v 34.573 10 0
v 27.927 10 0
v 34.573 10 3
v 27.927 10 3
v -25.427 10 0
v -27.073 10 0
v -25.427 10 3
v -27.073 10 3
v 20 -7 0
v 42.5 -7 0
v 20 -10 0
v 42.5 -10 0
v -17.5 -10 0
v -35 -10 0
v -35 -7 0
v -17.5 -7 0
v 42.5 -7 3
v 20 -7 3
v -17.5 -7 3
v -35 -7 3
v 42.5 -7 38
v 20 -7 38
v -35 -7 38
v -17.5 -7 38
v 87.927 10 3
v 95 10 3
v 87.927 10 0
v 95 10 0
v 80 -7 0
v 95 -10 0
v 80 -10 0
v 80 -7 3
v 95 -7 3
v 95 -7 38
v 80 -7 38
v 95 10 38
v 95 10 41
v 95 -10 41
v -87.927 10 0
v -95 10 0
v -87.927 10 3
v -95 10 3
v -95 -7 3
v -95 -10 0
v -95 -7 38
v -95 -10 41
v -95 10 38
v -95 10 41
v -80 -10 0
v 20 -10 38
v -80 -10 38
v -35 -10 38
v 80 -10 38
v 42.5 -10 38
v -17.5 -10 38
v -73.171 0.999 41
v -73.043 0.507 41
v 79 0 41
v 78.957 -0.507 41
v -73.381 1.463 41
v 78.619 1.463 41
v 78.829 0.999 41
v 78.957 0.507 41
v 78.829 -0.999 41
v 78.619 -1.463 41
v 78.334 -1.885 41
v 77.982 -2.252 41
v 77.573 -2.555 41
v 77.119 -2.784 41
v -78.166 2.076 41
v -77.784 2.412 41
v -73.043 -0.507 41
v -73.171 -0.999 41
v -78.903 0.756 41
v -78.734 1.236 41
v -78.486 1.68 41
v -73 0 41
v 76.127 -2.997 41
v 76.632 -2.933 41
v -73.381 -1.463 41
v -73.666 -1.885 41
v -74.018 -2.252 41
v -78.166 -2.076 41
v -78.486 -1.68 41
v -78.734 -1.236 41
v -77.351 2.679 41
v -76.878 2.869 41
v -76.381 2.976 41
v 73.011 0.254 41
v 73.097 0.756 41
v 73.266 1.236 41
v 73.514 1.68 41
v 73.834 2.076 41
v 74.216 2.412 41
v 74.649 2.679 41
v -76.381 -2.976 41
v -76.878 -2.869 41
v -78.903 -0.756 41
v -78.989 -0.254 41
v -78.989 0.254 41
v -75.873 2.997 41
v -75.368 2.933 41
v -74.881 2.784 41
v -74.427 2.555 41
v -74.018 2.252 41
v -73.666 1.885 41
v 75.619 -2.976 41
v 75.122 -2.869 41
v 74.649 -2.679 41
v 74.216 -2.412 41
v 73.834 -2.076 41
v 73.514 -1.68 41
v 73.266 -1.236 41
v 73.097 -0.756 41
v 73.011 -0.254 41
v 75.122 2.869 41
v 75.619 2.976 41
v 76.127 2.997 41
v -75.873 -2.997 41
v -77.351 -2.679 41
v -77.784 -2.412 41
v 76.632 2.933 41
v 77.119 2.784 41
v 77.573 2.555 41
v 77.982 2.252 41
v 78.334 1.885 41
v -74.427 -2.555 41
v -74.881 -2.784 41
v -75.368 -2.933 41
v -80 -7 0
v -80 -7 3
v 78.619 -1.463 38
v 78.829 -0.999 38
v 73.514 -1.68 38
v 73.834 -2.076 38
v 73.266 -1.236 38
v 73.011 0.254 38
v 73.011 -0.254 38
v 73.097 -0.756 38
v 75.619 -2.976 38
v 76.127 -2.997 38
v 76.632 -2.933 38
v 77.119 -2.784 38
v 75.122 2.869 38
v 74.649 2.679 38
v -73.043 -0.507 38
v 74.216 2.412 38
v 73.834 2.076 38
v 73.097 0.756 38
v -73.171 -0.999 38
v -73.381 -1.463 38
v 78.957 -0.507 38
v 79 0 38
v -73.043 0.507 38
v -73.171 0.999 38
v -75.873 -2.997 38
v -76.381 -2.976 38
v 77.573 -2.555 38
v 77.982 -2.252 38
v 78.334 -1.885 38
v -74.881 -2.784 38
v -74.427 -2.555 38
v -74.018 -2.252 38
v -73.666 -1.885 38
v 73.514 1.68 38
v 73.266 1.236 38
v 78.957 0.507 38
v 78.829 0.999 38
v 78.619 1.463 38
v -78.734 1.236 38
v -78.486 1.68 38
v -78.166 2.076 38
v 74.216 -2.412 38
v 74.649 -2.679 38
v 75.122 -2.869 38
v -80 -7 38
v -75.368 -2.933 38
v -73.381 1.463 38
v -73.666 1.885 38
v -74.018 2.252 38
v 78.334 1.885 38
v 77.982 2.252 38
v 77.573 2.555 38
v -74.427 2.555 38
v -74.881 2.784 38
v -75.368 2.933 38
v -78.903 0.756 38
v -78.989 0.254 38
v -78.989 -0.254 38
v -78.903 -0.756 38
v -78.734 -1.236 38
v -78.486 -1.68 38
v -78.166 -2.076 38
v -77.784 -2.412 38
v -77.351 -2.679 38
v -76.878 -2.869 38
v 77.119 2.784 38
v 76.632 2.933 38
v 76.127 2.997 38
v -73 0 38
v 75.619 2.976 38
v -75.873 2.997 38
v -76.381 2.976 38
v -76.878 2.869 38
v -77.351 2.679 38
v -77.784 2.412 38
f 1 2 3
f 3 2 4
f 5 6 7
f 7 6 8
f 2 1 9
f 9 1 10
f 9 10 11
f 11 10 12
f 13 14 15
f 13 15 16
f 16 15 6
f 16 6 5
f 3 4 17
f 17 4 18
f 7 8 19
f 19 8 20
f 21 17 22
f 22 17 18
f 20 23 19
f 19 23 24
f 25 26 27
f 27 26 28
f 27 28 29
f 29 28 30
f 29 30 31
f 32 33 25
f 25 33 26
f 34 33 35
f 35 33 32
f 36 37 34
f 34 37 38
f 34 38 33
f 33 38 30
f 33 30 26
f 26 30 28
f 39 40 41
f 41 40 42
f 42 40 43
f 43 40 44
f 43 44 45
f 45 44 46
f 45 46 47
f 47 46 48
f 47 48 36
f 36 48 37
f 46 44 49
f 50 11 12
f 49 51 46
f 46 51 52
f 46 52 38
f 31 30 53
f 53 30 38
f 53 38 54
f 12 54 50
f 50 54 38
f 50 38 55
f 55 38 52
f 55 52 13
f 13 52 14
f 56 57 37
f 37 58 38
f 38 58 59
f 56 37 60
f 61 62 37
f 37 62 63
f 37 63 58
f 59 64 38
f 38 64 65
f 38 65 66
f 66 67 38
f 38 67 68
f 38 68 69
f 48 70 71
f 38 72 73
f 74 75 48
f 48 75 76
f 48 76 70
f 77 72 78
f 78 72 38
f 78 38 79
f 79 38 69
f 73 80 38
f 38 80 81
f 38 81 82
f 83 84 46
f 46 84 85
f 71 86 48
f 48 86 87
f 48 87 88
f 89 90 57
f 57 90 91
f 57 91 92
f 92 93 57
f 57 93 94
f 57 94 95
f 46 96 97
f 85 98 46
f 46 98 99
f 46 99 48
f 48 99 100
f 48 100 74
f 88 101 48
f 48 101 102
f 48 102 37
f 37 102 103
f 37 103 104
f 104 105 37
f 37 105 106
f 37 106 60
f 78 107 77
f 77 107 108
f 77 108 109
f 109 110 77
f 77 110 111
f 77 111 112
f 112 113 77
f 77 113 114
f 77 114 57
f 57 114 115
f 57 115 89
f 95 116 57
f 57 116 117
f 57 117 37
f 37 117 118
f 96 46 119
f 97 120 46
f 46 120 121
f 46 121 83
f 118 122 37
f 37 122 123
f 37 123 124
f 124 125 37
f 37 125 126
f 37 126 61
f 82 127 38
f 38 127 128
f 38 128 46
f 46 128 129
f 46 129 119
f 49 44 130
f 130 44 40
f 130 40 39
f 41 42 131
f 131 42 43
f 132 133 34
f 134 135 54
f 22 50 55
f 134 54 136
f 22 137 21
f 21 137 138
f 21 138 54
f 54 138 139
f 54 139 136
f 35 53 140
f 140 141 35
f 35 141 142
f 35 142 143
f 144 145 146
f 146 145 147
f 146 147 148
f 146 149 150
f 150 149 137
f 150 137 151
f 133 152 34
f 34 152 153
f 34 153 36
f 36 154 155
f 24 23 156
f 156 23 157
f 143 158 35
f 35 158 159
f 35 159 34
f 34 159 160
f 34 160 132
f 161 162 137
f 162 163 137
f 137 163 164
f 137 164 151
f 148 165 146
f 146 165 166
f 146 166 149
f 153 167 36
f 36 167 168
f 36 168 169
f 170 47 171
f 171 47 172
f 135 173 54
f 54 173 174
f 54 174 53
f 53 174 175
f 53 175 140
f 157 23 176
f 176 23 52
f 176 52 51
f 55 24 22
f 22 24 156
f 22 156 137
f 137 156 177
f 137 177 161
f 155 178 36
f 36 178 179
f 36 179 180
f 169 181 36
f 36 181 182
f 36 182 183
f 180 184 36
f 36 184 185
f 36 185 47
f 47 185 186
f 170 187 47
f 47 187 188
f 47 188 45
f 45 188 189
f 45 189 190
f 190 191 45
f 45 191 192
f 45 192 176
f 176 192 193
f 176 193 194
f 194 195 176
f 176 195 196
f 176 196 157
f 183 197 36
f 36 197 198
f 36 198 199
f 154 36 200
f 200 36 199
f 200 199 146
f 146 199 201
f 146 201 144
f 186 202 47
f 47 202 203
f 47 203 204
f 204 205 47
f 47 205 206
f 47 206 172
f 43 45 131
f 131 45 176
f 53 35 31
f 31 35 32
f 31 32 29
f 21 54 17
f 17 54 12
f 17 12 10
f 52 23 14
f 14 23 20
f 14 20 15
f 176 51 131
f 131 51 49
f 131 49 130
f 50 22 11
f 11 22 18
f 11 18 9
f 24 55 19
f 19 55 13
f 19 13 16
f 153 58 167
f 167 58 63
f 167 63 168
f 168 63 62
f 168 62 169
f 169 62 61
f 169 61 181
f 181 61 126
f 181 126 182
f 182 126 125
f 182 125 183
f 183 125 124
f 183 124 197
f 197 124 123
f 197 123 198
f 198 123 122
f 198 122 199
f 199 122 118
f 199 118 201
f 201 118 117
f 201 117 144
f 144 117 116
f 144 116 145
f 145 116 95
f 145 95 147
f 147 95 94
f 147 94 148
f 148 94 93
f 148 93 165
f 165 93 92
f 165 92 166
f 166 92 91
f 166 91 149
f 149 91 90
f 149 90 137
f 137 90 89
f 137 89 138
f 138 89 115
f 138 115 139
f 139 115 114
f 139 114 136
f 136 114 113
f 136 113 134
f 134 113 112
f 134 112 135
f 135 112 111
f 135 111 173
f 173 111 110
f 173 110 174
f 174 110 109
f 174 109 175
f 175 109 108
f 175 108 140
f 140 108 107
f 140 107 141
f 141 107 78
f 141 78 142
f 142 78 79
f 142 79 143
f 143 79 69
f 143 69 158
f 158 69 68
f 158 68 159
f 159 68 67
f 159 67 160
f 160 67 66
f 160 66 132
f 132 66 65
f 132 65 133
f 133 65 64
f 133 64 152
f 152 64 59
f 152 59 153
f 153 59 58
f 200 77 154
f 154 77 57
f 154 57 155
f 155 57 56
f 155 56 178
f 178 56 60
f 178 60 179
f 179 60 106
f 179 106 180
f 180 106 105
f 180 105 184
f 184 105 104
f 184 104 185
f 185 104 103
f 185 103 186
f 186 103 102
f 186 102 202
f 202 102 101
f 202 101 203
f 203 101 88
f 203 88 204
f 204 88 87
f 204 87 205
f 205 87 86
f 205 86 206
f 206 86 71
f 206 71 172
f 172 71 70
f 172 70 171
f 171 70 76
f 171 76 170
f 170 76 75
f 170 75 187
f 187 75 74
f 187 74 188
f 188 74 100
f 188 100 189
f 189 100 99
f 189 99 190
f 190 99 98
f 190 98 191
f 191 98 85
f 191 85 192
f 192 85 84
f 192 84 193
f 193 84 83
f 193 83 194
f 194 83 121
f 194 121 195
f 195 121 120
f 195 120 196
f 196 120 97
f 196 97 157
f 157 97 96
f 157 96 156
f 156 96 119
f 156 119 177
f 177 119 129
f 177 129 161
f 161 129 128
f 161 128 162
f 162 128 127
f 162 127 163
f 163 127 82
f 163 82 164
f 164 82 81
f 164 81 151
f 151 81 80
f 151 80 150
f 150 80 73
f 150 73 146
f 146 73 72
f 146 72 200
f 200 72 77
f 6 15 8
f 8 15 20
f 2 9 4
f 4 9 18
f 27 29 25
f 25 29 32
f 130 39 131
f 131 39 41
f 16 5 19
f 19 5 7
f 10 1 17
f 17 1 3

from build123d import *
from OCP.BRepFilletAPI import BRepFilletAPI_MakeChamfer

# Parameters (mm, degrees)
SKICA1_W                      = 190
SKICA1_H                      = 20
P_IDAT_VYSUNUT_M1_DEPTH       = 41
SKICA2_W                      = 95
SKICA2_H                      = 35
ODEBRAT_VYSUNUT_M1_DEPTH      = 17
SKICA3_W                      = 37.5
SKICA3_H                      = 20
SKICA3_W_2                    = 45
ODEBRAT_VYSUNUT_M2_DEPTH      = 38
D_RY_PRO_KOL_K_VELIKOST_MM1_D = 6
ZKOSEN_2_SIZE                 = 17
ZKOSEN_2_SIZE2                = 7.927230189
ZKOSEN_3_SIZE                 = 17
ZKOSEN_3_SIZE2                = 7.927230189


with BuildPart() as part:
    # Skica1 → Přidat vysunutím1 (new body)
    with BuildSketch(Plane.XY):
        Rectangle(SKICA1_W, SKICA1_H)
    extrude(amount=P_IDAT_VYSUNUT_M1_DEPTH)

    # Skica2 → Odebrat vysunutím1 (cut)
    with BuildSketch(Plane(origin=(0, 10, 0), x_dir=(1, 0, 0), z_dir=(0, 1, 0))):
        with Locations((-47.5, -20.5)):
            Rectangle(SKICA2_W, SKICA2_H)
        with Locations((47.5, -20.5)):
            Rectangle(SKICA2_W, SKICA2_H)
    extrude(amount=-ODEBRAT_VYSUNUT_M1_DEPTH, mode=Mode.SUBTRACT)

    # Skica3 → Odebrat vysunutím2 (cut)
    with BuildSketch(Plane(origin=(0, 0, 0), x_dir=(-1, 0, 0), z_dir=(0, 0, -1))):
        with Locations((-61.25, 0)):
            Rectangle(SKICA3_W, SKICA3_H)
        with Locations((-1.25, 0)):
            Rectangle(SKICA3_W, SKICA3_H)
        with Locations((57.5, 0)):
            Rectangle(SKICA3_W_2, SKICA3_H)
    extrude(amount=-ODEBRAT_VYSUNUT_M2_DEPTH, mode=Mode.SUBTRACT)

    # Díry pro kolík, velikost mm1 (through all)
    with Locations(Plane.XY.offset(41)):
        with Locations((-76, 0), (76, 0)):
            Hole(D_RY_PRO_KOL_K_VELIKOST_MM1_D / 2)

    # Zkosení2: one chamfer whose edges measure the first distance from different faces: ONE call of the kernel's chamfer builder (chamfer() names one face for all edges)
    zkosen_2_edges_1 = [part.edges().sort_by_distance(p)[0] for p in [
        (-35, 10, 1.5),
    ]]
    zkosen_2_side_1 = [part.faces().sort_by_distance(p)[0] for p in [
        (-35, 0, 0.429418211),
    ]]
    zkosen_2_edges_2 = [part.edges().sort_by_distance(p)[0] for p in [
        (20, 10, 1.5),
    ]]
    zkosen_2_side_2 = [part.faces().sort_by_distance(p)[0] for p in [
        (20, 0, 0.429418211),
    ]]
    zkosen_2_edges_3 = [part.edges().sort_by_distance(p)[0] for p in [
        (80, 10, 1.5),
    ]]
    zkosen_2_side_3 = [part.faces().sort_by_distance(p)[0] for p in [
        (80, 0, 0.429418211),
    ]]
    zkosen_2 = BRepFilletAPI_MakeChamfer(part.part.solid().wrapped)
    for e in zkosen_2_edges_1:
        zkosen_2.Add(ZKOSEN_2_SIZE, ZKOSEN_2_SIZE2, e.wrapped, zkosen_2_side_1[0].wrapped)  # the first distance lies on this face
    for e in zkosen_2_edges_2:
        zkosen_2.Add(ZKOSEN_2_SIZE, ZKOSEN_2_SIZE2, e.wrapped, zkosen_2_side_2[0].wrapped)  # the first distance lies on this face
    for e in zkosen_2_edges_3:
        zkosen_2.Add(ZKOSEN_2_SIZE, ZKOSEN_2_SIZE2, e.wrapped, zkosen_2_side_3[0].wrapped)  # the first distance lies on this face
    add(Compound.cast(zkosen_2.Shape()), mode=Mode.REPLACE)

    # Zkosení3: one chamfer whose edges measure the first distance from different faces: ONE call of the kernel's chamfer builder (chamfer() names one face for all edges)
    zkosen_3_edges_1 = [part.edges().sort_by_distance(p)[0] for p in [
        (-80, 10, 1.5),
    ]]
    zkosen_3_side_1 = [part.faces().sort_by_distance(p)[0] for p in [
        (-80, 0, 0.429418211),
    ]]
    zkosen_3_edges_2 = [part.edges().sort_by_distance(p)[0] for p in [
        (-17.5, 10, 1.5),
    ]]
    zkosen_3_side_2 = [part.faces().sort_by_distance(p)[0] for p in [
        (-17.5, 0, 0.429418211),
    ]]
    zkosen_3_edges_3 = [part.edges().sort_by_distance(p)[0] for p in [
        (42.5, 10, 1.5),
    ]]
    zkosen_3_side_3 = [part.faces().sort_by_distance(p)[0] for p in [
        (42.5, 0, 0.429418211),
    ]]
    zkosen_3 = BRepFilletAPI_MakeChamfer(part.part.solid().wrapped)
    for e in zkosen_3_edges_1:
        zkosen_3.Add(ZKOSEN_3_SIZE, ZKOSEN_3_SIZE2, e.wrapped, zkosen_3_side_1[0].wrapped)  # the first distance lies on this face
    for e in zkosen_3_edges_2:
        zkosen_3.Add(ZKOSEN_3_SIZE, ZKOSEN_3_SIZE2, e.wrapped, zkosen_3_side_2[0].wrapped)  # the first distance lies on this face
    for e in zkosen_3_edges_3:
        zkosen_3.Add(ZKOSEN_3_SIZE, ZKOSEN_3_SIZE2, e.wrapped, zkosen_3_side_3[0].wrapped)  # the first distance lies on this face
    add(Compound.cast(zkosen_3.Shape()), mode=Mode.REPLACE)


solid = part.part
